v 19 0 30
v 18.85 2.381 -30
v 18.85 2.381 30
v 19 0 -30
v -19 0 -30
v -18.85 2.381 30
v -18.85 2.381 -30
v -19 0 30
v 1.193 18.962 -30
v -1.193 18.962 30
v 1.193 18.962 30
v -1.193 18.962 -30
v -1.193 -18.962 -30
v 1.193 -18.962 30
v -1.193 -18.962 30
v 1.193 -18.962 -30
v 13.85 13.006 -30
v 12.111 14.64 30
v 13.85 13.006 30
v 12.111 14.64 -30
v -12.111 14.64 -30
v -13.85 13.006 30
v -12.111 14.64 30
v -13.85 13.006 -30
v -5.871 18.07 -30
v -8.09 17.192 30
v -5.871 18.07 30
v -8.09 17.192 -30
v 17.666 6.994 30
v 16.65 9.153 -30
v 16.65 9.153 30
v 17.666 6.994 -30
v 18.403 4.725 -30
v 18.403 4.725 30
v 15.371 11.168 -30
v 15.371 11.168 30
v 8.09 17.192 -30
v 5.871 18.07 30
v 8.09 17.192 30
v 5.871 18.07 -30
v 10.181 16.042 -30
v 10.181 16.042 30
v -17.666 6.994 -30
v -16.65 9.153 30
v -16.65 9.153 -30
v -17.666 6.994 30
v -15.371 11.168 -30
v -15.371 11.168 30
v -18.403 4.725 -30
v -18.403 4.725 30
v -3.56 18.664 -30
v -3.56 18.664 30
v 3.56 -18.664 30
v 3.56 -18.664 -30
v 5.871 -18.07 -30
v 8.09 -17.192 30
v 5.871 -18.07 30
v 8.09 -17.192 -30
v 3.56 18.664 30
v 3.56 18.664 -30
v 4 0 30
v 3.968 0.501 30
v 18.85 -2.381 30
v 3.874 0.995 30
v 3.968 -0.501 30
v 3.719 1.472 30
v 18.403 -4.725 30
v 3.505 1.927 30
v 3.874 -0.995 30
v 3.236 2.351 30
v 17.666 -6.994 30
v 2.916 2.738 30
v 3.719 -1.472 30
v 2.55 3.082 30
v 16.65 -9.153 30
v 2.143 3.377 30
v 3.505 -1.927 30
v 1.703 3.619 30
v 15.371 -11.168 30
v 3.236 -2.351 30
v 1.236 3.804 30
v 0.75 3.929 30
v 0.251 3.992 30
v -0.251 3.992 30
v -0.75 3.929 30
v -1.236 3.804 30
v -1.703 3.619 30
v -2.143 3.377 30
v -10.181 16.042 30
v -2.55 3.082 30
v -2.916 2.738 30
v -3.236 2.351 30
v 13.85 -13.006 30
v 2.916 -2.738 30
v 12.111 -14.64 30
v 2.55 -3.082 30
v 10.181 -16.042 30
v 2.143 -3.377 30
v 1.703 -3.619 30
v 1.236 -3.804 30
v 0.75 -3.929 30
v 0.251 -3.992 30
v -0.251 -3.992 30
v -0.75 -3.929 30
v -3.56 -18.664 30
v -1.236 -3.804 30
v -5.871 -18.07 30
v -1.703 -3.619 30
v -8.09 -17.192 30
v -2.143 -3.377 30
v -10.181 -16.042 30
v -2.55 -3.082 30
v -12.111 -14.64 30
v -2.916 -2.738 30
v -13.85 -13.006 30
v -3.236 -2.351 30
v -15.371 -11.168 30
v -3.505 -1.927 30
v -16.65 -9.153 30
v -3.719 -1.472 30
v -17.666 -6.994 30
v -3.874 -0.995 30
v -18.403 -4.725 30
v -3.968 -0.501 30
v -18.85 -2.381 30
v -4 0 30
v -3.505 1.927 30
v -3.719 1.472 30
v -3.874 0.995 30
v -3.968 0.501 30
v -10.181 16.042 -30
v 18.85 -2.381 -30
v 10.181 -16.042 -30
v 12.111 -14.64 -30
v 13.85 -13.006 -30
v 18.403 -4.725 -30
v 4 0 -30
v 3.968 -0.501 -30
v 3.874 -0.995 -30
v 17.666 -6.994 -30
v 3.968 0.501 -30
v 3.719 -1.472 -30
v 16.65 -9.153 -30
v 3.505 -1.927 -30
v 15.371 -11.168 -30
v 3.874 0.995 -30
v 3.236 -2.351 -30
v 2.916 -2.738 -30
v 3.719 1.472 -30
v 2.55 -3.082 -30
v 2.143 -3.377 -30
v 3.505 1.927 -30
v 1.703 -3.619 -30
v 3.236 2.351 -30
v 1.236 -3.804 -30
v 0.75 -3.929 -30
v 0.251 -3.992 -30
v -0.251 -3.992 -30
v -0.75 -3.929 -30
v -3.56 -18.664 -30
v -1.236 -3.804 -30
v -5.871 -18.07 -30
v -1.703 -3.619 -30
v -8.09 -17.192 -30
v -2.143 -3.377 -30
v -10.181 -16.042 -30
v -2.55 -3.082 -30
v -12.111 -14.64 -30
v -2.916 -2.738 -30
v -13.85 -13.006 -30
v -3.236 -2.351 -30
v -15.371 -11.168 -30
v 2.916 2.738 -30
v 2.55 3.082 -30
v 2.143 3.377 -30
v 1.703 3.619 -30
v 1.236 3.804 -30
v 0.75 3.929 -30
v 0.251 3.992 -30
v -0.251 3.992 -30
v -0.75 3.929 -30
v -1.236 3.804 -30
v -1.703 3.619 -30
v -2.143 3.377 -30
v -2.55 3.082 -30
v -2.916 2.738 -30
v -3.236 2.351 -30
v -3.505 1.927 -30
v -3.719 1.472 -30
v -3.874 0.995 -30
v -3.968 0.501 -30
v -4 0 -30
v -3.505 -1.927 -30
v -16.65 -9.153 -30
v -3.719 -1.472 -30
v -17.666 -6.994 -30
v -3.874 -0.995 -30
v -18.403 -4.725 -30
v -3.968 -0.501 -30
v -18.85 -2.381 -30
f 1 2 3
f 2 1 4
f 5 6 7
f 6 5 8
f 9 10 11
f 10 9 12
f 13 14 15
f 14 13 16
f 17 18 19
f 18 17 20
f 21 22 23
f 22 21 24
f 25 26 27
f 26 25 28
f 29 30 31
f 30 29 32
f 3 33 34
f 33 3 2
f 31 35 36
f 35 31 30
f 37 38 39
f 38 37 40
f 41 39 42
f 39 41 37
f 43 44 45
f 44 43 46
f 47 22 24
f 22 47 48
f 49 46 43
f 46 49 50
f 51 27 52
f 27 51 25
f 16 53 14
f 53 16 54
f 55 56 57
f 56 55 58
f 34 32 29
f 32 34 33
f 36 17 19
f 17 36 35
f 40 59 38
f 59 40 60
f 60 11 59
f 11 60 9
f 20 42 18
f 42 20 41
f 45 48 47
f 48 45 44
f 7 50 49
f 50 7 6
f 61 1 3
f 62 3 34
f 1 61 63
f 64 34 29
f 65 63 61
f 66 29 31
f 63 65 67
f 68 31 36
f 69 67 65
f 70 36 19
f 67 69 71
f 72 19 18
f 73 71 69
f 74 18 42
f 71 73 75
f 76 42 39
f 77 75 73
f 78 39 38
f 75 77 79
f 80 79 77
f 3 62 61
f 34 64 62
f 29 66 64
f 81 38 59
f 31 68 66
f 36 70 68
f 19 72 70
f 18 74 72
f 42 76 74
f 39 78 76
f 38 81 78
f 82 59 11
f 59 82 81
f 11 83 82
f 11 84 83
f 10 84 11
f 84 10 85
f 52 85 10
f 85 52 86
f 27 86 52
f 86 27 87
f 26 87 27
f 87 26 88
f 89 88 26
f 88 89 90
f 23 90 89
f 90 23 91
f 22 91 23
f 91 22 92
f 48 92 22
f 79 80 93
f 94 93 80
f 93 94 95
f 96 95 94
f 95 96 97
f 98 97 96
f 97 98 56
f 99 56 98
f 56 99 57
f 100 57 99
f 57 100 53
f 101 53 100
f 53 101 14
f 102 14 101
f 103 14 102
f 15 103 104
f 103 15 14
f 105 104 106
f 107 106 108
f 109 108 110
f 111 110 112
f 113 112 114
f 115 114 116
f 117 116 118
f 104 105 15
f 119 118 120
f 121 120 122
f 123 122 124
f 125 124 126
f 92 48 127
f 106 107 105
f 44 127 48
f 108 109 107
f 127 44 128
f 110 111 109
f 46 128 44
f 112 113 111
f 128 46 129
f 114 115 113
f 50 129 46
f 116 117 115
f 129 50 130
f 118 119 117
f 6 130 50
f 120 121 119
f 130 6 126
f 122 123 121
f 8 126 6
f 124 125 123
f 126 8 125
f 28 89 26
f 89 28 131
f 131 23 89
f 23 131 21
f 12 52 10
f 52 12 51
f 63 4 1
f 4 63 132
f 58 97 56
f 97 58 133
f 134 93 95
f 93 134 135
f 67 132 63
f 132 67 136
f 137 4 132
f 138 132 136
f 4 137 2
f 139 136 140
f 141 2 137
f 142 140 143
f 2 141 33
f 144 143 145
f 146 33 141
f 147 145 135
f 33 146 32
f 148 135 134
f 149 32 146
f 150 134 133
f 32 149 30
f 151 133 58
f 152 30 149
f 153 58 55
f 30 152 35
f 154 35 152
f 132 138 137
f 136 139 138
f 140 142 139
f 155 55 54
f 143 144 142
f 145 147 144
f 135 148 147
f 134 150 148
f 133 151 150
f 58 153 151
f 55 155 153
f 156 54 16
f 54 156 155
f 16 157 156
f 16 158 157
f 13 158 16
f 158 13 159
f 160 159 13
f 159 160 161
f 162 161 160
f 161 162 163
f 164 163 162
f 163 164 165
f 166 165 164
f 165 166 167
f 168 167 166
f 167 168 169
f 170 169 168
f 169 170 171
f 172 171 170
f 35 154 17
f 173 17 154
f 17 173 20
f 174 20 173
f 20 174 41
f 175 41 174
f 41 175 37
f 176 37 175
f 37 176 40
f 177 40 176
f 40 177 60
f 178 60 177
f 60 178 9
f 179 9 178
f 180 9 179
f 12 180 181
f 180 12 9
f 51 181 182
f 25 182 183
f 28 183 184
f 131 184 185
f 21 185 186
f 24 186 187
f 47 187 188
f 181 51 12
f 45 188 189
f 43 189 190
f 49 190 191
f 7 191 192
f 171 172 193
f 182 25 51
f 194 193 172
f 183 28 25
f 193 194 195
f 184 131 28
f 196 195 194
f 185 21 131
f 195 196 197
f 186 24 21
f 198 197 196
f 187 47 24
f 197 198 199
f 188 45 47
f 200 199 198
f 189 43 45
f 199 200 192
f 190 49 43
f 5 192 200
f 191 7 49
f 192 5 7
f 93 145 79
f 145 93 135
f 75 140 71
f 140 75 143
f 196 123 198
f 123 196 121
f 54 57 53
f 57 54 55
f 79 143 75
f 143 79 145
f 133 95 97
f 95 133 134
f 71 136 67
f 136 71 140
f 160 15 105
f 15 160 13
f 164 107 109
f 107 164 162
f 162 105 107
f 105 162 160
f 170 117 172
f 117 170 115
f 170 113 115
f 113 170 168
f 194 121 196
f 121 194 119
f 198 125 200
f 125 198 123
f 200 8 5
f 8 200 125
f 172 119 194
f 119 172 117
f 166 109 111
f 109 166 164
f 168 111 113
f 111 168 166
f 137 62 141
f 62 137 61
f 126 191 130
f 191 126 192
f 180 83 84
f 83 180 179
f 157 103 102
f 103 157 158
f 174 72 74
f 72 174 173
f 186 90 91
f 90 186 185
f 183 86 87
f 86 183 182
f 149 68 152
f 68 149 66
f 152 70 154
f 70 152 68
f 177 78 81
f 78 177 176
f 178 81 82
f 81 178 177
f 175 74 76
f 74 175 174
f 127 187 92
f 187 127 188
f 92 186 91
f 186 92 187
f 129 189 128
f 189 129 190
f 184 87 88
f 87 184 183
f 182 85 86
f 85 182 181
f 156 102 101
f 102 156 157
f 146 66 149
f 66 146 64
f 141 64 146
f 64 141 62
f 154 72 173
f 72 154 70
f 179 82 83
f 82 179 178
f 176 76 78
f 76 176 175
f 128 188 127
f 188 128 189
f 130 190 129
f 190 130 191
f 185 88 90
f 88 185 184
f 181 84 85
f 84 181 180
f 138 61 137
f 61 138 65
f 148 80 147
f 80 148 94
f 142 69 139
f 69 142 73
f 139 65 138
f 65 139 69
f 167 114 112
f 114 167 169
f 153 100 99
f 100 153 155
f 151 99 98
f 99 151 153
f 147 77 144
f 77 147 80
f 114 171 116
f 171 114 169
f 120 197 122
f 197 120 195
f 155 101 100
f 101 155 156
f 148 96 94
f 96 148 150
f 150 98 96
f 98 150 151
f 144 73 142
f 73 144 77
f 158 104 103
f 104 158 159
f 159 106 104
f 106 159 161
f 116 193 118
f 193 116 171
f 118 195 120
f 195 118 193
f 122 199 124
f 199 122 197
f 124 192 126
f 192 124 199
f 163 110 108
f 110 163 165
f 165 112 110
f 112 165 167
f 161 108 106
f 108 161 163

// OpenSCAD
$fn = 50;


difference() {
	union() {
		translate(v = [0, 0, -30.0000000000]) {
			cylinder(h = 60, r = 19.0000000000);
		}
	}
	union() {
		translate(v = [0, 0, -100.0000000000]) {
			cylinder(h = 200, r = 4.0000000000);
		}
	}
}
